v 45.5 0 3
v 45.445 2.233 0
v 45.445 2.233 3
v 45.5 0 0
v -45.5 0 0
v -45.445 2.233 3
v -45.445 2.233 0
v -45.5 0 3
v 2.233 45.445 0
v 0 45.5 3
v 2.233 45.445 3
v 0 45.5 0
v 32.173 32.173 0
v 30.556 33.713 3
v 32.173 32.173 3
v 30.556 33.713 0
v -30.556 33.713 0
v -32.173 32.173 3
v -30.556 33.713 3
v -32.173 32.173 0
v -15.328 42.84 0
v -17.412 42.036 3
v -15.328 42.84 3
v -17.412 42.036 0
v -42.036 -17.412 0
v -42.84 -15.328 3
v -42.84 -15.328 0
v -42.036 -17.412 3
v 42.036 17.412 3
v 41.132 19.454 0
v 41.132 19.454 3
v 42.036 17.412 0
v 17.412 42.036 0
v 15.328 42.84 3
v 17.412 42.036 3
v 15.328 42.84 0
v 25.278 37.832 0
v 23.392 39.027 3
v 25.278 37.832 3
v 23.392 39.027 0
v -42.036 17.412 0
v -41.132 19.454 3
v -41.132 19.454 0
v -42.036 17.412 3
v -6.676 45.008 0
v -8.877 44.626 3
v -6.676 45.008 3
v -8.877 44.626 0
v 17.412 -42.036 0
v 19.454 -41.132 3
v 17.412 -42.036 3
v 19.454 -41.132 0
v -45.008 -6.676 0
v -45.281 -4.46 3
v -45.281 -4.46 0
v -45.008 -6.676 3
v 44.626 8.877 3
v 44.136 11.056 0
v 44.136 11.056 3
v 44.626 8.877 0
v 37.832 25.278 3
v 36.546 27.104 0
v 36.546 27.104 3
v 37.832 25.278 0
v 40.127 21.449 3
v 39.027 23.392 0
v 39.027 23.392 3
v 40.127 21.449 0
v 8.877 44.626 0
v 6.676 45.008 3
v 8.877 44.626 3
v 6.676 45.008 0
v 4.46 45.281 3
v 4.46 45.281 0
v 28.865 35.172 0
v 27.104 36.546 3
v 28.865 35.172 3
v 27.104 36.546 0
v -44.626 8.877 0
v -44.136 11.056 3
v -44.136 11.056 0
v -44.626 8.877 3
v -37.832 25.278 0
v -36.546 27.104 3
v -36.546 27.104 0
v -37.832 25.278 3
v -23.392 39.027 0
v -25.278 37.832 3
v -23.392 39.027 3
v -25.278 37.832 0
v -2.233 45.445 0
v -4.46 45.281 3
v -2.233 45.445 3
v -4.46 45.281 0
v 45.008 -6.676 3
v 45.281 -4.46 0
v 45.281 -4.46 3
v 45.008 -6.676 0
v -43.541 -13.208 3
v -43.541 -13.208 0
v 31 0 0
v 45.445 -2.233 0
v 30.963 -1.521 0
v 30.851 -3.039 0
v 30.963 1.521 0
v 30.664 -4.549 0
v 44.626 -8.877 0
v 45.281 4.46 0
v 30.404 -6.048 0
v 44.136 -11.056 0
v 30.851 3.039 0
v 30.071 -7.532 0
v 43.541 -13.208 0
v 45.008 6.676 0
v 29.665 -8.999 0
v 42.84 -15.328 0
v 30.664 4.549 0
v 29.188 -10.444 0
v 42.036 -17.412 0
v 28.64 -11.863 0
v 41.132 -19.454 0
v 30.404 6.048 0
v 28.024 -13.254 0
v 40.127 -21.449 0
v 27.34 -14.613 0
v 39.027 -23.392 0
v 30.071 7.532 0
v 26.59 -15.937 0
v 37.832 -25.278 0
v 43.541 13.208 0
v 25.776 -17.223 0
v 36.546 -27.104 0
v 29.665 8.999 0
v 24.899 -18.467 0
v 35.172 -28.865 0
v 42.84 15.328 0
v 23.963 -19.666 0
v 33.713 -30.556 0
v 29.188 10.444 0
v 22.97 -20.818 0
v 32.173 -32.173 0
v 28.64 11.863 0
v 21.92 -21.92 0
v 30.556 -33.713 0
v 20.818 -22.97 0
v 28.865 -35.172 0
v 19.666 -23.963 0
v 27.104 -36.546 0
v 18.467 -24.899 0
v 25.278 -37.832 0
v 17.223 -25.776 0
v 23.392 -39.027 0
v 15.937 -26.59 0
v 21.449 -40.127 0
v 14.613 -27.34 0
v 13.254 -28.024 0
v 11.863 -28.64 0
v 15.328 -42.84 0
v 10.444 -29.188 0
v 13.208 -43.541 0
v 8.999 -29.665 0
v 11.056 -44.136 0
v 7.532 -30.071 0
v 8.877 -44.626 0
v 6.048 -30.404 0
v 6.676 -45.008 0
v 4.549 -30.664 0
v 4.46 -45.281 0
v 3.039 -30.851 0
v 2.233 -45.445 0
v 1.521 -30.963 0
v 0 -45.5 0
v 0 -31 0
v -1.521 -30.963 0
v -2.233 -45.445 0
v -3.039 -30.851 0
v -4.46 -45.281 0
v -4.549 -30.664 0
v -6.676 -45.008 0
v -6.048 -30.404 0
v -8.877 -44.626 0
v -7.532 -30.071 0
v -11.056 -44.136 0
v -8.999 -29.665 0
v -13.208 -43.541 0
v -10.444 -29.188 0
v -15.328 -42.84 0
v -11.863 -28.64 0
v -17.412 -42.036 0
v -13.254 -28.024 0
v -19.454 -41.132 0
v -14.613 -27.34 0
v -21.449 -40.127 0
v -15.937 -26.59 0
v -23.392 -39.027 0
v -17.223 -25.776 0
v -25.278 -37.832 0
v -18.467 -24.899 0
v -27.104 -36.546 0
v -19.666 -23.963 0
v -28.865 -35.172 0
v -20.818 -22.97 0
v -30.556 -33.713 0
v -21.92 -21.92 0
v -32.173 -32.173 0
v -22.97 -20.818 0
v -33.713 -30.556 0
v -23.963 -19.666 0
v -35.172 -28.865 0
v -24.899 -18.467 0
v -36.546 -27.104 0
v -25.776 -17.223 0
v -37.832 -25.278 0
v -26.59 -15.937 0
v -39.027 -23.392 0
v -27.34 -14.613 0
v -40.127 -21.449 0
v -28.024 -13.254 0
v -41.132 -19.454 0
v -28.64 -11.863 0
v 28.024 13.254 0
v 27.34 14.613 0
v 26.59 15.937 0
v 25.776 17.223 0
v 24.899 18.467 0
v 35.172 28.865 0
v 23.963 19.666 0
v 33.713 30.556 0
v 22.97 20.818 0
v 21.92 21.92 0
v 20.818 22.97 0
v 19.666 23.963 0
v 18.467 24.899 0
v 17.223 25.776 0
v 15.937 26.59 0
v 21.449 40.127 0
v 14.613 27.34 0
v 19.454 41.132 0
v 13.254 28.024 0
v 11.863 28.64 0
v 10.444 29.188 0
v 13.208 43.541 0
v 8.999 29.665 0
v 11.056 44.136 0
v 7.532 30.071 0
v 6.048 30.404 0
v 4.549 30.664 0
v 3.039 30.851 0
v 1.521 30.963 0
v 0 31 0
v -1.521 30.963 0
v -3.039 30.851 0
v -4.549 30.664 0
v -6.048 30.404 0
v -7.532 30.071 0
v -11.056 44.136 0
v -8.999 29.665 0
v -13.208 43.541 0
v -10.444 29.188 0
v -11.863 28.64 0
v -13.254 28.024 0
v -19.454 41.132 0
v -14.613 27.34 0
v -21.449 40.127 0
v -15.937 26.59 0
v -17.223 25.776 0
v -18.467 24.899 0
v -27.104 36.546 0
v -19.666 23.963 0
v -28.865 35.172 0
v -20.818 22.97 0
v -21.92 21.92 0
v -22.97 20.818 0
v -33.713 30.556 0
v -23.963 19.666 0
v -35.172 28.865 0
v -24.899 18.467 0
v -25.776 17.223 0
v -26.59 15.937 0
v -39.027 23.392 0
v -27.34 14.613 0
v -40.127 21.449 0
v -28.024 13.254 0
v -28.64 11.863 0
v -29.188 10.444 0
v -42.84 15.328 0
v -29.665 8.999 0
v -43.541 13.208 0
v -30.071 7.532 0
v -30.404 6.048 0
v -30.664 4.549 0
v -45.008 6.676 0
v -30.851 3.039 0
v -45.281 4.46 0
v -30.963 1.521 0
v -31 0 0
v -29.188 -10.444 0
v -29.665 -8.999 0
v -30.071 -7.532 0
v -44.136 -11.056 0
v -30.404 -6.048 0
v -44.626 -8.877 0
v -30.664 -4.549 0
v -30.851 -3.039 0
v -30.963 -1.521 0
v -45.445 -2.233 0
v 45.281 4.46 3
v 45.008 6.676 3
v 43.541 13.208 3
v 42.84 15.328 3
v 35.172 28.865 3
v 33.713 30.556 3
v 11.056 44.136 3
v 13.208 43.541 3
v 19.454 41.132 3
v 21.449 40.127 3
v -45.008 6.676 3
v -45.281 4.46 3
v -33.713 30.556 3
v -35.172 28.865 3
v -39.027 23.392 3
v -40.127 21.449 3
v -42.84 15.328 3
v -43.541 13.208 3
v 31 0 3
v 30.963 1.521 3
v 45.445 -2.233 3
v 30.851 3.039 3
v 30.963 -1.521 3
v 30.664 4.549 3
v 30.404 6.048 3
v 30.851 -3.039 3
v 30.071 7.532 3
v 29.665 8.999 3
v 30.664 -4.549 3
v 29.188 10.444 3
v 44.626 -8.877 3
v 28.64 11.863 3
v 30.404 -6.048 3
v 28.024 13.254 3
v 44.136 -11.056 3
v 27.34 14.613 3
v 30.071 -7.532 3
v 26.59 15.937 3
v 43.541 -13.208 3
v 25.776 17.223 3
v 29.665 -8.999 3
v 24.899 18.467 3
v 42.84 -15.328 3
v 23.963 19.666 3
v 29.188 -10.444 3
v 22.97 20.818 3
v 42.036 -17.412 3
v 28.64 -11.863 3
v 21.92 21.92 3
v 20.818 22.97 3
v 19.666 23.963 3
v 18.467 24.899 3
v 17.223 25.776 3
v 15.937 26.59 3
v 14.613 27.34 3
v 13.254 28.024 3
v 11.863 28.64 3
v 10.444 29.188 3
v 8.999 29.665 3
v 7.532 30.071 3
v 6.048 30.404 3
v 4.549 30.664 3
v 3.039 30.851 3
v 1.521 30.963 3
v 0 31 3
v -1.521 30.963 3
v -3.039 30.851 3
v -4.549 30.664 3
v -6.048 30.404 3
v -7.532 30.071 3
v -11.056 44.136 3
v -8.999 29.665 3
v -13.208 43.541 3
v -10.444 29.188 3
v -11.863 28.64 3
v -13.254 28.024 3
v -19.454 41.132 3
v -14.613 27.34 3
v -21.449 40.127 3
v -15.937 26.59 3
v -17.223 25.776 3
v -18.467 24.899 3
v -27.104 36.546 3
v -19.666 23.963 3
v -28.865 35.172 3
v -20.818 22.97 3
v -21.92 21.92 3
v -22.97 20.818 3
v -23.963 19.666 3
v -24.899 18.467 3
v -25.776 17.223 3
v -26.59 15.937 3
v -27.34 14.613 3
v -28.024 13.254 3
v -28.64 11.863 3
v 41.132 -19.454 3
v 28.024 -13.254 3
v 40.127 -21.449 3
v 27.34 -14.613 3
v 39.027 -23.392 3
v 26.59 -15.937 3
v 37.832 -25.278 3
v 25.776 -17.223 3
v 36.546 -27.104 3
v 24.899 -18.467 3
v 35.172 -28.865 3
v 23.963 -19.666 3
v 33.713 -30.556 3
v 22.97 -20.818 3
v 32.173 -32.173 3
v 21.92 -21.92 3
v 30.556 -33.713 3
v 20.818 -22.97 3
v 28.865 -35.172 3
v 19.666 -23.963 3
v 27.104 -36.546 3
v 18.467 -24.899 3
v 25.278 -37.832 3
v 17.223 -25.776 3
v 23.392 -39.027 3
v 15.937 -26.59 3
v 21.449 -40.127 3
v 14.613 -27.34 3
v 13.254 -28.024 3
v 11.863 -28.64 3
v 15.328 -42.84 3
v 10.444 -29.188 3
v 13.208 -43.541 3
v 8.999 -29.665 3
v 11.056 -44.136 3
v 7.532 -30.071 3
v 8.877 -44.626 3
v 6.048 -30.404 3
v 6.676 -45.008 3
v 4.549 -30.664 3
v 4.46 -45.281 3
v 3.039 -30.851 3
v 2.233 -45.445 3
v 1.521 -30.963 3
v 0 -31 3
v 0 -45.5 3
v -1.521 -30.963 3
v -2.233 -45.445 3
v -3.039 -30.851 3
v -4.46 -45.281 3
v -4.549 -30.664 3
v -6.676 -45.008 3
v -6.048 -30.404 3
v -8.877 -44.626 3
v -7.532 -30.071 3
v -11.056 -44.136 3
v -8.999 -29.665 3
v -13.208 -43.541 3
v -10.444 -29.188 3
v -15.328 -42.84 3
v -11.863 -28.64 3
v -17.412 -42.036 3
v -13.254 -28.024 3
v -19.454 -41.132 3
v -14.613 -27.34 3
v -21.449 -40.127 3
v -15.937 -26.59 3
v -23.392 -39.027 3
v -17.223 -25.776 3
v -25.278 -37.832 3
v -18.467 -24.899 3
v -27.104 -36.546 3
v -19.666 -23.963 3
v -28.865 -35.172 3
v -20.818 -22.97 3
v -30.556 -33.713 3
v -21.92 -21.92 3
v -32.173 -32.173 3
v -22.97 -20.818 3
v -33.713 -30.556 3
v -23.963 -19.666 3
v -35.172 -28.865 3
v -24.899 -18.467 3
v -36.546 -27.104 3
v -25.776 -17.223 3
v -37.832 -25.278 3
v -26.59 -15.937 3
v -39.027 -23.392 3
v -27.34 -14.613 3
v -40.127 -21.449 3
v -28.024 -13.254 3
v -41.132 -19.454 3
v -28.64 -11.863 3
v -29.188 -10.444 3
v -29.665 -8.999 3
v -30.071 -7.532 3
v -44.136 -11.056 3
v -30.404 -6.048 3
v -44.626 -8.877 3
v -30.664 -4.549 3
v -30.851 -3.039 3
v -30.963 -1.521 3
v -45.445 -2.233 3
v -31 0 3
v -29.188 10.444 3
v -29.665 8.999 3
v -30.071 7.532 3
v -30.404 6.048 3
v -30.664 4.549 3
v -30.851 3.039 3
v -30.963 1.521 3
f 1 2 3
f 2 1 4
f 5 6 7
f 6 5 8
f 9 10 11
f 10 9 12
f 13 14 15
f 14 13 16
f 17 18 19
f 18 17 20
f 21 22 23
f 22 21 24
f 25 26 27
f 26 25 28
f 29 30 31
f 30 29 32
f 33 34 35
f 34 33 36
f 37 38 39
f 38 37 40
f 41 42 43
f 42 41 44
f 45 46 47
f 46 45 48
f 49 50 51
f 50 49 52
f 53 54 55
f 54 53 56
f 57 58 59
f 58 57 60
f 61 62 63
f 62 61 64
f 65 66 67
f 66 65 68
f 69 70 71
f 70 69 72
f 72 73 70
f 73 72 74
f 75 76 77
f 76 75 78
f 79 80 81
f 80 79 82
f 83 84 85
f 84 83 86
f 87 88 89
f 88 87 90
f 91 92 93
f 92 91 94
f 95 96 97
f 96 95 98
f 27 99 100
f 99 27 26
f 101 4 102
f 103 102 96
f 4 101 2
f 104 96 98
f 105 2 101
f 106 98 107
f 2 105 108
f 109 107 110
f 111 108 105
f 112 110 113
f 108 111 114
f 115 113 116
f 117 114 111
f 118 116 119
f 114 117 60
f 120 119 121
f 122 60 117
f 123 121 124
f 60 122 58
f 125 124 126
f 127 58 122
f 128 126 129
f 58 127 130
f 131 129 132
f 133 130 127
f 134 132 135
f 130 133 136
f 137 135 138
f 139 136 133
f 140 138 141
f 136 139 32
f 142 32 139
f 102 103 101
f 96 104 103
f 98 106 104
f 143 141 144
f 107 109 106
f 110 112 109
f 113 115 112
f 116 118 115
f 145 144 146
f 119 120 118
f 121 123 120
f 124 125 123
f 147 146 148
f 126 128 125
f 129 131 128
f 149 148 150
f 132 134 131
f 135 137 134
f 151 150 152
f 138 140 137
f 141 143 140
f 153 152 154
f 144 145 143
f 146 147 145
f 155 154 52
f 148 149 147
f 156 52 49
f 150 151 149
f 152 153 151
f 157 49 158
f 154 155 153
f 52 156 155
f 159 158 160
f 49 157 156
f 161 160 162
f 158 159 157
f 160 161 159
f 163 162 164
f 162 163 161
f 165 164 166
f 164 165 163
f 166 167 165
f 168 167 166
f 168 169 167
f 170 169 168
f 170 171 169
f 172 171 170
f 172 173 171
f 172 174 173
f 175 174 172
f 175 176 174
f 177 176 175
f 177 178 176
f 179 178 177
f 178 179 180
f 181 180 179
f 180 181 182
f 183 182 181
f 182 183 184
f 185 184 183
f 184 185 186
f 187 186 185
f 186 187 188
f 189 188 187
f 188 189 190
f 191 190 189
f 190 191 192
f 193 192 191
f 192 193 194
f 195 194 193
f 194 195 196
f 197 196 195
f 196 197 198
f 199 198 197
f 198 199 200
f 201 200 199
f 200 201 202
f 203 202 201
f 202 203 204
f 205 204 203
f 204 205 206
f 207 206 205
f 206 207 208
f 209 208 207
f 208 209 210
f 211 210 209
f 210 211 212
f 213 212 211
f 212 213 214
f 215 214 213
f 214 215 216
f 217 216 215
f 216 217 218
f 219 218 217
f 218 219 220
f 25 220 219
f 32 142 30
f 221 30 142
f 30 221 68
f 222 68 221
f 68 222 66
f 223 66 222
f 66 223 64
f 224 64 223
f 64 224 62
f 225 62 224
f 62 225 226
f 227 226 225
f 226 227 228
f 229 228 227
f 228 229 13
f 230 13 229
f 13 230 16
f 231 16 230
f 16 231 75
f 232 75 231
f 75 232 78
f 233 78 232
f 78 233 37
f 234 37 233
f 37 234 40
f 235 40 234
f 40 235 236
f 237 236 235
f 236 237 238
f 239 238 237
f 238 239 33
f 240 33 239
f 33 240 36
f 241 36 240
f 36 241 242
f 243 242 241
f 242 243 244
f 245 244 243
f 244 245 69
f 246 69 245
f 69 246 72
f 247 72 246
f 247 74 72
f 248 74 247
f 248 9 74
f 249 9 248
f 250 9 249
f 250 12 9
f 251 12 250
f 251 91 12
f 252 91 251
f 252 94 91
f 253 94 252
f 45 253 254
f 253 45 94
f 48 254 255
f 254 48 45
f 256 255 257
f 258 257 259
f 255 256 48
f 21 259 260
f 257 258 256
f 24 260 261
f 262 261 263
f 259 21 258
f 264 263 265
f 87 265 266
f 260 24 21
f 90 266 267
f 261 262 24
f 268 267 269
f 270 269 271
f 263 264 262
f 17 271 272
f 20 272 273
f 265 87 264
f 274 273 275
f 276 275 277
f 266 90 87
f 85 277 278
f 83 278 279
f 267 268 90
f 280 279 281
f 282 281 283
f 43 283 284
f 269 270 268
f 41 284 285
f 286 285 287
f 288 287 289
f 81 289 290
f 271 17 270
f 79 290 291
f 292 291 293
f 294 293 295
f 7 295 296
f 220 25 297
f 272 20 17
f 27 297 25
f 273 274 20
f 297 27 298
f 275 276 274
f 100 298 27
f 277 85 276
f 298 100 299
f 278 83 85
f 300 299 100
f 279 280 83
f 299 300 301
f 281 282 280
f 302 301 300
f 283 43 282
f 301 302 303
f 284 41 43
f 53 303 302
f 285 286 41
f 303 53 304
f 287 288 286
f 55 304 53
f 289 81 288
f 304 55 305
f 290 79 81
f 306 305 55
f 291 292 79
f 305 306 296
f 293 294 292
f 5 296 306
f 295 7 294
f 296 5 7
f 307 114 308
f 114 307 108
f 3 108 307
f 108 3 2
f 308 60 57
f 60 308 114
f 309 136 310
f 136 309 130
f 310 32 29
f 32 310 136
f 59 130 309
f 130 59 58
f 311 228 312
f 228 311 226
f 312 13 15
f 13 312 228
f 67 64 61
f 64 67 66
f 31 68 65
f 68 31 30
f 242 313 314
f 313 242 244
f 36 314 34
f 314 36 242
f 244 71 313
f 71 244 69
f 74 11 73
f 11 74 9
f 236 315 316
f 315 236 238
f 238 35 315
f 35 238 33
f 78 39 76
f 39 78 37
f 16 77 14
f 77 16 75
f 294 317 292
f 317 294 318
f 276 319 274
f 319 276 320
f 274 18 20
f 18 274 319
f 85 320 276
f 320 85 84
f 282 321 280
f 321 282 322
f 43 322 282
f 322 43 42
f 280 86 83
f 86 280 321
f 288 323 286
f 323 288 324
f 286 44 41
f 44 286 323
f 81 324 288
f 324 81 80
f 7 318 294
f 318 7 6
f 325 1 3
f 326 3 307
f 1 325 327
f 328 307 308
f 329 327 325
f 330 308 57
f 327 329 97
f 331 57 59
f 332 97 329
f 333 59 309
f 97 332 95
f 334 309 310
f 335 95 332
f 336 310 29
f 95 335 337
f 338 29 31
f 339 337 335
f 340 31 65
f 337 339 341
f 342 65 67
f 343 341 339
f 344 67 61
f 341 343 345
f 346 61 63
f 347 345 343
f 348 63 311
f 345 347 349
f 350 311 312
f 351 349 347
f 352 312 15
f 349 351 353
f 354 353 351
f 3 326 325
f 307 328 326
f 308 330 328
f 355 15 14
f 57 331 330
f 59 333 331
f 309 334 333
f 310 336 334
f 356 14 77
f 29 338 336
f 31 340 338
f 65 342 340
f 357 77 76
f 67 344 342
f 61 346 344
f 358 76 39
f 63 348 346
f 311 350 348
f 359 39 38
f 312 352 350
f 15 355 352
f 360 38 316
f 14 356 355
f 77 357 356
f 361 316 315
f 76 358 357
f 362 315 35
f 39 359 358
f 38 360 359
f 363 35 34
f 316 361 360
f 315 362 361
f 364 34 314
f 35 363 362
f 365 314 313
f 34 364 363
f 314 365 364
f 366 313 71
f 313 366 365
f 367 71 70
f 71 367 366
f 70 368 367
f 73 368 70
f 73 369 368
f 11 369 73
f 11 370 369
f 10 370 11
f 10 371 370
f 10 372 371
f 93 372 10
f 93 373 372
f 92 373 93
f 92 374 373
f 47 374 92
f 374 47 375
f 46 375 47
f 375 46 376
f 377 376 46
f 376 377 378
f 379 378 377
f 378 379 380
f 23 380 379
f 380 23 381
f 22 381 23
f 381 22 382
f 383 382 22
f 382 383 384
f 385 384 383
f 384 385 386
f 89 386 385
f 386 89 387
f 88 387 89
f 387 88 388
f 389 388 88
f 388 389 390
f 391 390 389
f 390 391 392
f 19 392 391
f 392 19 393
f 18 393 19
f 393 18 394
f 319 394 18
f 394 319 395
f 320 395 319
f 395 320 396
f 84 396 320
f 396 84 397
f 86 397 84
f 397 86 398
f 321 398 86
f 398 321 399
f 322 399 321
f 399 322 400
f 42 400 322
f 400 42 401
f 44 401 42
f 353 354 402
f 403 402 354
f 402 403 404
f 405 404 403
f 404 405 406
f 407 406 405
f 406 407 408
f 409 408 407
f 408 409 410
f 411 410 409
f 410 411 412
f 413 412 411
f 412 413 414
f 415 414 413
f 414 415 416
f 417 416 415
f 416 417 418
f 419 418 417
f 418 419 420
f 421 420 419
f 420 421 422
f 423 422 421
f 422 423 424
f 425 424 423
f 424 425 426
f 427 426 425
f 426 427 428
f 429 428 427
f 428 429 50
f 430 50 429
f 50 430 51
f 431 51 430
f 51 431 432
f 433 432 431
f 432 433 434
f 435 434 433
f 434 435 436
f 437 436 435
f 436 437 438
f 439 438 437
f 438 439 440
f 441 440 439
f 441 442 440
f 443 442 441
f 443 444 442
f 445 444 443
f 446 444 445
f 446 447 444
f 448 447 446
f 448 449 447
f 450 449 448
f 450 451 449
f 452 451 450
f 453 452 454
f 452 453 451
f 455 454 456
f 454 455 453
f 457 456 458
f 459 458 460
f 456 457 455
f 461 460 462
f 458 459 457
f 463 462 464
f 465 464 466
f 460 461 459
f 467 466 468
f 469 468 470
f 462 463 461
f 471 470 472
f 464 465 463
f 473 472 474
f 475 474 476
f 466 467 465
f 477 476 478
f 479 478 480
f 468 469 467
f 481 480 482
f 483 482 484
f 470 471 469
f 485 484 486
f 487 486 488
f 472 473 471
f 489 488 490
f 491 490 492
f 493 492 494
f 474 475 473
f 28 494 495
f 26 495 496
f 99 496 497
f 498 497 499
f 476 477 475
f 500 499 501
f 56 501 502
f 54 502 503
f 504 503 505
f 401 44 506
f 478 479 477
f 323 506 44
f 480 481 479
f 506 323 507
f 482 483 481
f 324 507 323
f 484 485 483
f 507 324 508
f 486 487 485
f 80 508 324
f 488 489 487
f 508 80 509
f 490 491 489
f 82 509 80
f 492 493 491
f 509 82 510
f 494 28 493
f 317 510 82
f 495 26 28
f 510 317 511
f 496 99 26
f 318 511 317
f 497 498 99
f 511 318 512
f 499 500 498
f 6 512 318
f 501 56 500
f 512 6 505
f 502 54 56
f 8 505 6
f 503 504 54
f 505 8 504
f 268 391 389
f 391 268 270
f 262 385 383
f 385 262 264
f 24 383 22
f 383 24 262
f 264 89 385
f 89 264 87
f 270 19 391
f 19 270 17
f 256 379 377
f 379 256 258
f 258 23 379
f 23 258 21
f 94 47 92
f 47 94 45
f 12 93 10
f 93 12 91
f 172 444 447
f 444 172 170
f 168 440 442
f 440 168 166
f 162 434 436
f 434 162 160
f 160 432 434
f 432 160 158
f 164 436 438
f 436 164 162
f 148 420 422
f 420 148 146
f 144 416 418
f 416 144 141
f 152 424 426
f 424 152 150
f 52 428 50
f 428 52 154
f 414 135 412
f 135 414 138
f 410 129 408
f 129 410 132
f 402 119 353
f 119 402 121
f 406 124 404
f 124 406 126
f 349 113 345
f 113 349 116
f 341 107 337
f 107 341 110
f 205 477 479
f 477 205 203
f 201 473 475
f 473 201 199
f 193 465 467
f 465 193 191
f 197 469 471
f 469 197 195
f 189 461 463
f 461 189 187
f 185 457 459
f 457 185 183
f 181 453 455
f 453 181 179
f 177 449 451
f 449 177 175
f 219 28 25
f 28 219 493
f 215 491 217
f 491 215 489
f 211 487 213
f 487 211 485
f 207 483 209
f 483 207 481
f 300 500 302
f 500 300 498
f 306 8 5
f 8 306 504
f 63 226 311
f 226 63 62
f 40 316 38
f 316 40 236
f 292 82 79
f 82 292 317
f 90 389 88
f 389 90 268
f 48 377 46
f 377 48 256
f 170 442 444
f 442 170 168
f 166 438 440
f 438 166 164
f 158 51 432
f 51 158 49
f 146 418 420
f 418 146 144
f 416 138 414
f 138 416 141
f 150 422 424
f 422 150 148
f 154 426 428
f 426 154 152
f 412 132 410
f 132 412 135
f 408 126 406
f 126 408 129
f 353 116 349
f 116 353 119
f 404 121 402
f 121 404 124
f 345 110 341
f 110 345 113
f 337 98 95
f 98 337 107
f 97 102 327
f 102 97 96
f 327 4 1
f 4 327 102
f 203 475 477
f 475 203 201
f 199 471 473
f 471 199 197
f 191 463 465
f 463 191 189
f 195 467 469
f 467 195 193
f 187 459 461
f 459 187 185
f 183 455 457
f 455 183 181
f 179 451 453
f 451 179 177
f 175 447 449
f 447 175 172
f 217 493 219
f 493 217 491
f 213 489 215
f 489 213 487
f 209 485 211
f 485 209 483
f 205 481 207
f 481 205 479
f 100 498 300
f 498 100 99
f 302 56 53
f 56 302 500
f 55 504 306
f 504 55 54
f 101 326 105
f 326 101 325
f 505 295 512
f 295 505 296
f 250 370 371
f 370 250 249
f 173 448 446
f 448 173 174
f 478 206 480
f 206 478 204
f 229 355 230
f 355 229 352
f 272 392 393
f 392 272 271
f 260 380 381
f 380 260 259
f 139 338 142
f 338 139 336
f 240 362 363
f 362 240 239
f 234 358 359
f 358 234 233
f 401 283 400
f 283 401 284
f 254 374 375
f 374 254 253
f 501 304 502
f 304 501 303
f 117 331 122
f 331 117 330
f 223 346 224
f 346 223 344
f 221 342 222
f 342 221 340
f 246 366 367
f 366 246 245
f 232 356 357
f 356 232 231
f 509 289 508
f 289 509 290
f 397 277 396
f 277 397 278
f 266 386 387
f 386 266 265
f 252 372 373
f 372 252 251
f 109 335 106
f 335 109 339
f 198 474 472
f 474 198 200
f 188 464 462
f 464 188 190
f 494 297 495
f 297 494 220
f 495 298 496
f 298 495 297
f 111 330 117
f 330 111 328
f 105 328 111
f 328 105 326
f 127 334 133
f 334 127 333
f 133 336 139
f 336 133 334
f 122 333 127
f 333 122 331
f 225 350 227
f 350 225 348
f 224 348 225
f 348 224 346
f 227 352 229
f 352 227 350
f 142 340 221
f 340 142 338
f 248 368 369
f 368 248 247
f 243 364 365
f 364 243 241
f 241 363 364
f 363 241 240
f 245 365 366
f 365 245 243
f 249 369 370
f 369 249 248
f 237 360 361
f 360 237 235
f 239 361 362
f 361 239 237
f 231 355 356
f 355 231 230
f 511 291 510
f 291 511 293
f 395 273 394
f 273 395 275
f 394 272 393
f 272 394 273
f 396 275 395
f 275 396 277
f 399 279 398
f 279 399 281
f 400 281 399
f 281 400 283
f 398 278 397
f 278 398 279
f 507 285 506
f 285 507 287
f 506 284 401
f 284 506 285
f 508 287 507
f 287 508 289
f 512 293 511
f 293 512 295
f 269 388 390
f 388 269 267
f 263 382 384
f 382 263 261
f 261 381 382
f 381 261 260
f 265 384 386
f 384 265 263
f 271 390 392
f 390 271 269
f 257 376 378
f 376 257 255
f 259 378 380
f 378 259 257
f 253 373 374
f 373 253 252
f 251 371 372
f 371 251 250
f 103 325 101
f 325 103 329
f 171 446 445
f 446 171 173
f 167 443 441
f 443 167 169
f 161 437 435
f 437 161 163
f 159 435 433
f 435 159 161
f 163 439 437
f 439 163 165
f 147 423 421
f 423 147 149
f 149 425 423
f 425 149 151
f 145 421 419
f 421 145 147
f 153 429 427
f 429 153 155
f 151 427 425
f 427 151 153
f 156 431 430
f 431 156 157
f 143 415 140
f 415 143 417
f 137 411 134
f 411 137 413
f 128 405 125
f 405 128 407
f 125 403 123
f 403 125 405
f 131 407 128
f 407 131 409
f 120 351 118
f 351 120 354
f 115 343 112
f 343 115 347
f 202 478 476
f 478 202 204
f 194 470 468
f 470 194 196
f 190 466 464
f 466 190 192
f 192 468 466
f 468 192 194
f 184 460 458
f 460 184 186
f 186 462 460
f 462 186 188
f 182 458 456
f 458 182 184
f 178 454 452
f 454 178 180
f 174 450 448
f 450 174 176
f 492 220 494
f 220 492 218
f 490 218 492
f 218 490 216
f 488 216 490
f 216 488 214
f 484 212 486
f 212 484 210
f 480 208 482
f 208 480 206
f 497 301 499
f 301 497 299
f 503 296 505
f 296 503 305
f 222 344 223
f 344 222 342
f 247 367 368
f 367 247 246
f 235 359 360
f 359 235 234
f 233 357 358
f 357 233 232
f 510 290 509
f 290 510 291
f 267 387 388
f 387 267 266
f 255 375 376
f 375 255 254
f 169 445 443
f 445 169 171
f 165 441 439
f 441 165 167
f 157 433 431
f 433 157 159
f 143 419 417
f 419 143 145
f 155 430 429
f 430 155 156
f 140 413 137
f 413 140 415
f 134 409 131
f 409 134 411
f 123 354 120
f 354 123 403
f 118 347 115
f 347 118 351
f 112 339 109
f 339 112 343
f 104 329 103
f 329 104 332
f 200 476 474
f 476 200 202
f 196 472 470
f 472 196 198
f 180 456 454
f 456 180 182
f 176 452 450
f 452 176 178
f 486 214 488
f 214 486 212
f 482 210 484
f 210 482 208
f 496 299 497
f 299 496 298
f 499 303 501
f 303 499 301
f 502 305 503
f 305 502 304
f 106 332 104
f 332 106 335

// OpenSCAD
//                    _
// |\/| _  _  _  _  _|_) __  o _  __| _
// |  |(/_(_|(_|| |_>|  | (_)|(/_(_ |_>
//         _|               _|
//       www.megansprojects.com
// 
// Sun rise set light head clear cover

$fn = 128;
wall_thickness = 3;
head_inside_outer_diameter  = 88;
head_inside_inner_diameter  = 65;
head_depth = 10;

head_inside_outer_r = head_inside_outer_diameter / 2;
head_inside_inner_r = head_inside_inner_diameter / 2;

// top clear plastic ring
difference()
{
    cylinder ( wall_thickness, head_inside_outer_r + wall_thickness / 2 ,head_inside_outer_r + wall_thickness / 2 );
    cylinder ( wall_thickness, head_inside_inner_r - wall_thickness / 2 ,head_inside_inner_r - wall_thickness / 2 );
}
